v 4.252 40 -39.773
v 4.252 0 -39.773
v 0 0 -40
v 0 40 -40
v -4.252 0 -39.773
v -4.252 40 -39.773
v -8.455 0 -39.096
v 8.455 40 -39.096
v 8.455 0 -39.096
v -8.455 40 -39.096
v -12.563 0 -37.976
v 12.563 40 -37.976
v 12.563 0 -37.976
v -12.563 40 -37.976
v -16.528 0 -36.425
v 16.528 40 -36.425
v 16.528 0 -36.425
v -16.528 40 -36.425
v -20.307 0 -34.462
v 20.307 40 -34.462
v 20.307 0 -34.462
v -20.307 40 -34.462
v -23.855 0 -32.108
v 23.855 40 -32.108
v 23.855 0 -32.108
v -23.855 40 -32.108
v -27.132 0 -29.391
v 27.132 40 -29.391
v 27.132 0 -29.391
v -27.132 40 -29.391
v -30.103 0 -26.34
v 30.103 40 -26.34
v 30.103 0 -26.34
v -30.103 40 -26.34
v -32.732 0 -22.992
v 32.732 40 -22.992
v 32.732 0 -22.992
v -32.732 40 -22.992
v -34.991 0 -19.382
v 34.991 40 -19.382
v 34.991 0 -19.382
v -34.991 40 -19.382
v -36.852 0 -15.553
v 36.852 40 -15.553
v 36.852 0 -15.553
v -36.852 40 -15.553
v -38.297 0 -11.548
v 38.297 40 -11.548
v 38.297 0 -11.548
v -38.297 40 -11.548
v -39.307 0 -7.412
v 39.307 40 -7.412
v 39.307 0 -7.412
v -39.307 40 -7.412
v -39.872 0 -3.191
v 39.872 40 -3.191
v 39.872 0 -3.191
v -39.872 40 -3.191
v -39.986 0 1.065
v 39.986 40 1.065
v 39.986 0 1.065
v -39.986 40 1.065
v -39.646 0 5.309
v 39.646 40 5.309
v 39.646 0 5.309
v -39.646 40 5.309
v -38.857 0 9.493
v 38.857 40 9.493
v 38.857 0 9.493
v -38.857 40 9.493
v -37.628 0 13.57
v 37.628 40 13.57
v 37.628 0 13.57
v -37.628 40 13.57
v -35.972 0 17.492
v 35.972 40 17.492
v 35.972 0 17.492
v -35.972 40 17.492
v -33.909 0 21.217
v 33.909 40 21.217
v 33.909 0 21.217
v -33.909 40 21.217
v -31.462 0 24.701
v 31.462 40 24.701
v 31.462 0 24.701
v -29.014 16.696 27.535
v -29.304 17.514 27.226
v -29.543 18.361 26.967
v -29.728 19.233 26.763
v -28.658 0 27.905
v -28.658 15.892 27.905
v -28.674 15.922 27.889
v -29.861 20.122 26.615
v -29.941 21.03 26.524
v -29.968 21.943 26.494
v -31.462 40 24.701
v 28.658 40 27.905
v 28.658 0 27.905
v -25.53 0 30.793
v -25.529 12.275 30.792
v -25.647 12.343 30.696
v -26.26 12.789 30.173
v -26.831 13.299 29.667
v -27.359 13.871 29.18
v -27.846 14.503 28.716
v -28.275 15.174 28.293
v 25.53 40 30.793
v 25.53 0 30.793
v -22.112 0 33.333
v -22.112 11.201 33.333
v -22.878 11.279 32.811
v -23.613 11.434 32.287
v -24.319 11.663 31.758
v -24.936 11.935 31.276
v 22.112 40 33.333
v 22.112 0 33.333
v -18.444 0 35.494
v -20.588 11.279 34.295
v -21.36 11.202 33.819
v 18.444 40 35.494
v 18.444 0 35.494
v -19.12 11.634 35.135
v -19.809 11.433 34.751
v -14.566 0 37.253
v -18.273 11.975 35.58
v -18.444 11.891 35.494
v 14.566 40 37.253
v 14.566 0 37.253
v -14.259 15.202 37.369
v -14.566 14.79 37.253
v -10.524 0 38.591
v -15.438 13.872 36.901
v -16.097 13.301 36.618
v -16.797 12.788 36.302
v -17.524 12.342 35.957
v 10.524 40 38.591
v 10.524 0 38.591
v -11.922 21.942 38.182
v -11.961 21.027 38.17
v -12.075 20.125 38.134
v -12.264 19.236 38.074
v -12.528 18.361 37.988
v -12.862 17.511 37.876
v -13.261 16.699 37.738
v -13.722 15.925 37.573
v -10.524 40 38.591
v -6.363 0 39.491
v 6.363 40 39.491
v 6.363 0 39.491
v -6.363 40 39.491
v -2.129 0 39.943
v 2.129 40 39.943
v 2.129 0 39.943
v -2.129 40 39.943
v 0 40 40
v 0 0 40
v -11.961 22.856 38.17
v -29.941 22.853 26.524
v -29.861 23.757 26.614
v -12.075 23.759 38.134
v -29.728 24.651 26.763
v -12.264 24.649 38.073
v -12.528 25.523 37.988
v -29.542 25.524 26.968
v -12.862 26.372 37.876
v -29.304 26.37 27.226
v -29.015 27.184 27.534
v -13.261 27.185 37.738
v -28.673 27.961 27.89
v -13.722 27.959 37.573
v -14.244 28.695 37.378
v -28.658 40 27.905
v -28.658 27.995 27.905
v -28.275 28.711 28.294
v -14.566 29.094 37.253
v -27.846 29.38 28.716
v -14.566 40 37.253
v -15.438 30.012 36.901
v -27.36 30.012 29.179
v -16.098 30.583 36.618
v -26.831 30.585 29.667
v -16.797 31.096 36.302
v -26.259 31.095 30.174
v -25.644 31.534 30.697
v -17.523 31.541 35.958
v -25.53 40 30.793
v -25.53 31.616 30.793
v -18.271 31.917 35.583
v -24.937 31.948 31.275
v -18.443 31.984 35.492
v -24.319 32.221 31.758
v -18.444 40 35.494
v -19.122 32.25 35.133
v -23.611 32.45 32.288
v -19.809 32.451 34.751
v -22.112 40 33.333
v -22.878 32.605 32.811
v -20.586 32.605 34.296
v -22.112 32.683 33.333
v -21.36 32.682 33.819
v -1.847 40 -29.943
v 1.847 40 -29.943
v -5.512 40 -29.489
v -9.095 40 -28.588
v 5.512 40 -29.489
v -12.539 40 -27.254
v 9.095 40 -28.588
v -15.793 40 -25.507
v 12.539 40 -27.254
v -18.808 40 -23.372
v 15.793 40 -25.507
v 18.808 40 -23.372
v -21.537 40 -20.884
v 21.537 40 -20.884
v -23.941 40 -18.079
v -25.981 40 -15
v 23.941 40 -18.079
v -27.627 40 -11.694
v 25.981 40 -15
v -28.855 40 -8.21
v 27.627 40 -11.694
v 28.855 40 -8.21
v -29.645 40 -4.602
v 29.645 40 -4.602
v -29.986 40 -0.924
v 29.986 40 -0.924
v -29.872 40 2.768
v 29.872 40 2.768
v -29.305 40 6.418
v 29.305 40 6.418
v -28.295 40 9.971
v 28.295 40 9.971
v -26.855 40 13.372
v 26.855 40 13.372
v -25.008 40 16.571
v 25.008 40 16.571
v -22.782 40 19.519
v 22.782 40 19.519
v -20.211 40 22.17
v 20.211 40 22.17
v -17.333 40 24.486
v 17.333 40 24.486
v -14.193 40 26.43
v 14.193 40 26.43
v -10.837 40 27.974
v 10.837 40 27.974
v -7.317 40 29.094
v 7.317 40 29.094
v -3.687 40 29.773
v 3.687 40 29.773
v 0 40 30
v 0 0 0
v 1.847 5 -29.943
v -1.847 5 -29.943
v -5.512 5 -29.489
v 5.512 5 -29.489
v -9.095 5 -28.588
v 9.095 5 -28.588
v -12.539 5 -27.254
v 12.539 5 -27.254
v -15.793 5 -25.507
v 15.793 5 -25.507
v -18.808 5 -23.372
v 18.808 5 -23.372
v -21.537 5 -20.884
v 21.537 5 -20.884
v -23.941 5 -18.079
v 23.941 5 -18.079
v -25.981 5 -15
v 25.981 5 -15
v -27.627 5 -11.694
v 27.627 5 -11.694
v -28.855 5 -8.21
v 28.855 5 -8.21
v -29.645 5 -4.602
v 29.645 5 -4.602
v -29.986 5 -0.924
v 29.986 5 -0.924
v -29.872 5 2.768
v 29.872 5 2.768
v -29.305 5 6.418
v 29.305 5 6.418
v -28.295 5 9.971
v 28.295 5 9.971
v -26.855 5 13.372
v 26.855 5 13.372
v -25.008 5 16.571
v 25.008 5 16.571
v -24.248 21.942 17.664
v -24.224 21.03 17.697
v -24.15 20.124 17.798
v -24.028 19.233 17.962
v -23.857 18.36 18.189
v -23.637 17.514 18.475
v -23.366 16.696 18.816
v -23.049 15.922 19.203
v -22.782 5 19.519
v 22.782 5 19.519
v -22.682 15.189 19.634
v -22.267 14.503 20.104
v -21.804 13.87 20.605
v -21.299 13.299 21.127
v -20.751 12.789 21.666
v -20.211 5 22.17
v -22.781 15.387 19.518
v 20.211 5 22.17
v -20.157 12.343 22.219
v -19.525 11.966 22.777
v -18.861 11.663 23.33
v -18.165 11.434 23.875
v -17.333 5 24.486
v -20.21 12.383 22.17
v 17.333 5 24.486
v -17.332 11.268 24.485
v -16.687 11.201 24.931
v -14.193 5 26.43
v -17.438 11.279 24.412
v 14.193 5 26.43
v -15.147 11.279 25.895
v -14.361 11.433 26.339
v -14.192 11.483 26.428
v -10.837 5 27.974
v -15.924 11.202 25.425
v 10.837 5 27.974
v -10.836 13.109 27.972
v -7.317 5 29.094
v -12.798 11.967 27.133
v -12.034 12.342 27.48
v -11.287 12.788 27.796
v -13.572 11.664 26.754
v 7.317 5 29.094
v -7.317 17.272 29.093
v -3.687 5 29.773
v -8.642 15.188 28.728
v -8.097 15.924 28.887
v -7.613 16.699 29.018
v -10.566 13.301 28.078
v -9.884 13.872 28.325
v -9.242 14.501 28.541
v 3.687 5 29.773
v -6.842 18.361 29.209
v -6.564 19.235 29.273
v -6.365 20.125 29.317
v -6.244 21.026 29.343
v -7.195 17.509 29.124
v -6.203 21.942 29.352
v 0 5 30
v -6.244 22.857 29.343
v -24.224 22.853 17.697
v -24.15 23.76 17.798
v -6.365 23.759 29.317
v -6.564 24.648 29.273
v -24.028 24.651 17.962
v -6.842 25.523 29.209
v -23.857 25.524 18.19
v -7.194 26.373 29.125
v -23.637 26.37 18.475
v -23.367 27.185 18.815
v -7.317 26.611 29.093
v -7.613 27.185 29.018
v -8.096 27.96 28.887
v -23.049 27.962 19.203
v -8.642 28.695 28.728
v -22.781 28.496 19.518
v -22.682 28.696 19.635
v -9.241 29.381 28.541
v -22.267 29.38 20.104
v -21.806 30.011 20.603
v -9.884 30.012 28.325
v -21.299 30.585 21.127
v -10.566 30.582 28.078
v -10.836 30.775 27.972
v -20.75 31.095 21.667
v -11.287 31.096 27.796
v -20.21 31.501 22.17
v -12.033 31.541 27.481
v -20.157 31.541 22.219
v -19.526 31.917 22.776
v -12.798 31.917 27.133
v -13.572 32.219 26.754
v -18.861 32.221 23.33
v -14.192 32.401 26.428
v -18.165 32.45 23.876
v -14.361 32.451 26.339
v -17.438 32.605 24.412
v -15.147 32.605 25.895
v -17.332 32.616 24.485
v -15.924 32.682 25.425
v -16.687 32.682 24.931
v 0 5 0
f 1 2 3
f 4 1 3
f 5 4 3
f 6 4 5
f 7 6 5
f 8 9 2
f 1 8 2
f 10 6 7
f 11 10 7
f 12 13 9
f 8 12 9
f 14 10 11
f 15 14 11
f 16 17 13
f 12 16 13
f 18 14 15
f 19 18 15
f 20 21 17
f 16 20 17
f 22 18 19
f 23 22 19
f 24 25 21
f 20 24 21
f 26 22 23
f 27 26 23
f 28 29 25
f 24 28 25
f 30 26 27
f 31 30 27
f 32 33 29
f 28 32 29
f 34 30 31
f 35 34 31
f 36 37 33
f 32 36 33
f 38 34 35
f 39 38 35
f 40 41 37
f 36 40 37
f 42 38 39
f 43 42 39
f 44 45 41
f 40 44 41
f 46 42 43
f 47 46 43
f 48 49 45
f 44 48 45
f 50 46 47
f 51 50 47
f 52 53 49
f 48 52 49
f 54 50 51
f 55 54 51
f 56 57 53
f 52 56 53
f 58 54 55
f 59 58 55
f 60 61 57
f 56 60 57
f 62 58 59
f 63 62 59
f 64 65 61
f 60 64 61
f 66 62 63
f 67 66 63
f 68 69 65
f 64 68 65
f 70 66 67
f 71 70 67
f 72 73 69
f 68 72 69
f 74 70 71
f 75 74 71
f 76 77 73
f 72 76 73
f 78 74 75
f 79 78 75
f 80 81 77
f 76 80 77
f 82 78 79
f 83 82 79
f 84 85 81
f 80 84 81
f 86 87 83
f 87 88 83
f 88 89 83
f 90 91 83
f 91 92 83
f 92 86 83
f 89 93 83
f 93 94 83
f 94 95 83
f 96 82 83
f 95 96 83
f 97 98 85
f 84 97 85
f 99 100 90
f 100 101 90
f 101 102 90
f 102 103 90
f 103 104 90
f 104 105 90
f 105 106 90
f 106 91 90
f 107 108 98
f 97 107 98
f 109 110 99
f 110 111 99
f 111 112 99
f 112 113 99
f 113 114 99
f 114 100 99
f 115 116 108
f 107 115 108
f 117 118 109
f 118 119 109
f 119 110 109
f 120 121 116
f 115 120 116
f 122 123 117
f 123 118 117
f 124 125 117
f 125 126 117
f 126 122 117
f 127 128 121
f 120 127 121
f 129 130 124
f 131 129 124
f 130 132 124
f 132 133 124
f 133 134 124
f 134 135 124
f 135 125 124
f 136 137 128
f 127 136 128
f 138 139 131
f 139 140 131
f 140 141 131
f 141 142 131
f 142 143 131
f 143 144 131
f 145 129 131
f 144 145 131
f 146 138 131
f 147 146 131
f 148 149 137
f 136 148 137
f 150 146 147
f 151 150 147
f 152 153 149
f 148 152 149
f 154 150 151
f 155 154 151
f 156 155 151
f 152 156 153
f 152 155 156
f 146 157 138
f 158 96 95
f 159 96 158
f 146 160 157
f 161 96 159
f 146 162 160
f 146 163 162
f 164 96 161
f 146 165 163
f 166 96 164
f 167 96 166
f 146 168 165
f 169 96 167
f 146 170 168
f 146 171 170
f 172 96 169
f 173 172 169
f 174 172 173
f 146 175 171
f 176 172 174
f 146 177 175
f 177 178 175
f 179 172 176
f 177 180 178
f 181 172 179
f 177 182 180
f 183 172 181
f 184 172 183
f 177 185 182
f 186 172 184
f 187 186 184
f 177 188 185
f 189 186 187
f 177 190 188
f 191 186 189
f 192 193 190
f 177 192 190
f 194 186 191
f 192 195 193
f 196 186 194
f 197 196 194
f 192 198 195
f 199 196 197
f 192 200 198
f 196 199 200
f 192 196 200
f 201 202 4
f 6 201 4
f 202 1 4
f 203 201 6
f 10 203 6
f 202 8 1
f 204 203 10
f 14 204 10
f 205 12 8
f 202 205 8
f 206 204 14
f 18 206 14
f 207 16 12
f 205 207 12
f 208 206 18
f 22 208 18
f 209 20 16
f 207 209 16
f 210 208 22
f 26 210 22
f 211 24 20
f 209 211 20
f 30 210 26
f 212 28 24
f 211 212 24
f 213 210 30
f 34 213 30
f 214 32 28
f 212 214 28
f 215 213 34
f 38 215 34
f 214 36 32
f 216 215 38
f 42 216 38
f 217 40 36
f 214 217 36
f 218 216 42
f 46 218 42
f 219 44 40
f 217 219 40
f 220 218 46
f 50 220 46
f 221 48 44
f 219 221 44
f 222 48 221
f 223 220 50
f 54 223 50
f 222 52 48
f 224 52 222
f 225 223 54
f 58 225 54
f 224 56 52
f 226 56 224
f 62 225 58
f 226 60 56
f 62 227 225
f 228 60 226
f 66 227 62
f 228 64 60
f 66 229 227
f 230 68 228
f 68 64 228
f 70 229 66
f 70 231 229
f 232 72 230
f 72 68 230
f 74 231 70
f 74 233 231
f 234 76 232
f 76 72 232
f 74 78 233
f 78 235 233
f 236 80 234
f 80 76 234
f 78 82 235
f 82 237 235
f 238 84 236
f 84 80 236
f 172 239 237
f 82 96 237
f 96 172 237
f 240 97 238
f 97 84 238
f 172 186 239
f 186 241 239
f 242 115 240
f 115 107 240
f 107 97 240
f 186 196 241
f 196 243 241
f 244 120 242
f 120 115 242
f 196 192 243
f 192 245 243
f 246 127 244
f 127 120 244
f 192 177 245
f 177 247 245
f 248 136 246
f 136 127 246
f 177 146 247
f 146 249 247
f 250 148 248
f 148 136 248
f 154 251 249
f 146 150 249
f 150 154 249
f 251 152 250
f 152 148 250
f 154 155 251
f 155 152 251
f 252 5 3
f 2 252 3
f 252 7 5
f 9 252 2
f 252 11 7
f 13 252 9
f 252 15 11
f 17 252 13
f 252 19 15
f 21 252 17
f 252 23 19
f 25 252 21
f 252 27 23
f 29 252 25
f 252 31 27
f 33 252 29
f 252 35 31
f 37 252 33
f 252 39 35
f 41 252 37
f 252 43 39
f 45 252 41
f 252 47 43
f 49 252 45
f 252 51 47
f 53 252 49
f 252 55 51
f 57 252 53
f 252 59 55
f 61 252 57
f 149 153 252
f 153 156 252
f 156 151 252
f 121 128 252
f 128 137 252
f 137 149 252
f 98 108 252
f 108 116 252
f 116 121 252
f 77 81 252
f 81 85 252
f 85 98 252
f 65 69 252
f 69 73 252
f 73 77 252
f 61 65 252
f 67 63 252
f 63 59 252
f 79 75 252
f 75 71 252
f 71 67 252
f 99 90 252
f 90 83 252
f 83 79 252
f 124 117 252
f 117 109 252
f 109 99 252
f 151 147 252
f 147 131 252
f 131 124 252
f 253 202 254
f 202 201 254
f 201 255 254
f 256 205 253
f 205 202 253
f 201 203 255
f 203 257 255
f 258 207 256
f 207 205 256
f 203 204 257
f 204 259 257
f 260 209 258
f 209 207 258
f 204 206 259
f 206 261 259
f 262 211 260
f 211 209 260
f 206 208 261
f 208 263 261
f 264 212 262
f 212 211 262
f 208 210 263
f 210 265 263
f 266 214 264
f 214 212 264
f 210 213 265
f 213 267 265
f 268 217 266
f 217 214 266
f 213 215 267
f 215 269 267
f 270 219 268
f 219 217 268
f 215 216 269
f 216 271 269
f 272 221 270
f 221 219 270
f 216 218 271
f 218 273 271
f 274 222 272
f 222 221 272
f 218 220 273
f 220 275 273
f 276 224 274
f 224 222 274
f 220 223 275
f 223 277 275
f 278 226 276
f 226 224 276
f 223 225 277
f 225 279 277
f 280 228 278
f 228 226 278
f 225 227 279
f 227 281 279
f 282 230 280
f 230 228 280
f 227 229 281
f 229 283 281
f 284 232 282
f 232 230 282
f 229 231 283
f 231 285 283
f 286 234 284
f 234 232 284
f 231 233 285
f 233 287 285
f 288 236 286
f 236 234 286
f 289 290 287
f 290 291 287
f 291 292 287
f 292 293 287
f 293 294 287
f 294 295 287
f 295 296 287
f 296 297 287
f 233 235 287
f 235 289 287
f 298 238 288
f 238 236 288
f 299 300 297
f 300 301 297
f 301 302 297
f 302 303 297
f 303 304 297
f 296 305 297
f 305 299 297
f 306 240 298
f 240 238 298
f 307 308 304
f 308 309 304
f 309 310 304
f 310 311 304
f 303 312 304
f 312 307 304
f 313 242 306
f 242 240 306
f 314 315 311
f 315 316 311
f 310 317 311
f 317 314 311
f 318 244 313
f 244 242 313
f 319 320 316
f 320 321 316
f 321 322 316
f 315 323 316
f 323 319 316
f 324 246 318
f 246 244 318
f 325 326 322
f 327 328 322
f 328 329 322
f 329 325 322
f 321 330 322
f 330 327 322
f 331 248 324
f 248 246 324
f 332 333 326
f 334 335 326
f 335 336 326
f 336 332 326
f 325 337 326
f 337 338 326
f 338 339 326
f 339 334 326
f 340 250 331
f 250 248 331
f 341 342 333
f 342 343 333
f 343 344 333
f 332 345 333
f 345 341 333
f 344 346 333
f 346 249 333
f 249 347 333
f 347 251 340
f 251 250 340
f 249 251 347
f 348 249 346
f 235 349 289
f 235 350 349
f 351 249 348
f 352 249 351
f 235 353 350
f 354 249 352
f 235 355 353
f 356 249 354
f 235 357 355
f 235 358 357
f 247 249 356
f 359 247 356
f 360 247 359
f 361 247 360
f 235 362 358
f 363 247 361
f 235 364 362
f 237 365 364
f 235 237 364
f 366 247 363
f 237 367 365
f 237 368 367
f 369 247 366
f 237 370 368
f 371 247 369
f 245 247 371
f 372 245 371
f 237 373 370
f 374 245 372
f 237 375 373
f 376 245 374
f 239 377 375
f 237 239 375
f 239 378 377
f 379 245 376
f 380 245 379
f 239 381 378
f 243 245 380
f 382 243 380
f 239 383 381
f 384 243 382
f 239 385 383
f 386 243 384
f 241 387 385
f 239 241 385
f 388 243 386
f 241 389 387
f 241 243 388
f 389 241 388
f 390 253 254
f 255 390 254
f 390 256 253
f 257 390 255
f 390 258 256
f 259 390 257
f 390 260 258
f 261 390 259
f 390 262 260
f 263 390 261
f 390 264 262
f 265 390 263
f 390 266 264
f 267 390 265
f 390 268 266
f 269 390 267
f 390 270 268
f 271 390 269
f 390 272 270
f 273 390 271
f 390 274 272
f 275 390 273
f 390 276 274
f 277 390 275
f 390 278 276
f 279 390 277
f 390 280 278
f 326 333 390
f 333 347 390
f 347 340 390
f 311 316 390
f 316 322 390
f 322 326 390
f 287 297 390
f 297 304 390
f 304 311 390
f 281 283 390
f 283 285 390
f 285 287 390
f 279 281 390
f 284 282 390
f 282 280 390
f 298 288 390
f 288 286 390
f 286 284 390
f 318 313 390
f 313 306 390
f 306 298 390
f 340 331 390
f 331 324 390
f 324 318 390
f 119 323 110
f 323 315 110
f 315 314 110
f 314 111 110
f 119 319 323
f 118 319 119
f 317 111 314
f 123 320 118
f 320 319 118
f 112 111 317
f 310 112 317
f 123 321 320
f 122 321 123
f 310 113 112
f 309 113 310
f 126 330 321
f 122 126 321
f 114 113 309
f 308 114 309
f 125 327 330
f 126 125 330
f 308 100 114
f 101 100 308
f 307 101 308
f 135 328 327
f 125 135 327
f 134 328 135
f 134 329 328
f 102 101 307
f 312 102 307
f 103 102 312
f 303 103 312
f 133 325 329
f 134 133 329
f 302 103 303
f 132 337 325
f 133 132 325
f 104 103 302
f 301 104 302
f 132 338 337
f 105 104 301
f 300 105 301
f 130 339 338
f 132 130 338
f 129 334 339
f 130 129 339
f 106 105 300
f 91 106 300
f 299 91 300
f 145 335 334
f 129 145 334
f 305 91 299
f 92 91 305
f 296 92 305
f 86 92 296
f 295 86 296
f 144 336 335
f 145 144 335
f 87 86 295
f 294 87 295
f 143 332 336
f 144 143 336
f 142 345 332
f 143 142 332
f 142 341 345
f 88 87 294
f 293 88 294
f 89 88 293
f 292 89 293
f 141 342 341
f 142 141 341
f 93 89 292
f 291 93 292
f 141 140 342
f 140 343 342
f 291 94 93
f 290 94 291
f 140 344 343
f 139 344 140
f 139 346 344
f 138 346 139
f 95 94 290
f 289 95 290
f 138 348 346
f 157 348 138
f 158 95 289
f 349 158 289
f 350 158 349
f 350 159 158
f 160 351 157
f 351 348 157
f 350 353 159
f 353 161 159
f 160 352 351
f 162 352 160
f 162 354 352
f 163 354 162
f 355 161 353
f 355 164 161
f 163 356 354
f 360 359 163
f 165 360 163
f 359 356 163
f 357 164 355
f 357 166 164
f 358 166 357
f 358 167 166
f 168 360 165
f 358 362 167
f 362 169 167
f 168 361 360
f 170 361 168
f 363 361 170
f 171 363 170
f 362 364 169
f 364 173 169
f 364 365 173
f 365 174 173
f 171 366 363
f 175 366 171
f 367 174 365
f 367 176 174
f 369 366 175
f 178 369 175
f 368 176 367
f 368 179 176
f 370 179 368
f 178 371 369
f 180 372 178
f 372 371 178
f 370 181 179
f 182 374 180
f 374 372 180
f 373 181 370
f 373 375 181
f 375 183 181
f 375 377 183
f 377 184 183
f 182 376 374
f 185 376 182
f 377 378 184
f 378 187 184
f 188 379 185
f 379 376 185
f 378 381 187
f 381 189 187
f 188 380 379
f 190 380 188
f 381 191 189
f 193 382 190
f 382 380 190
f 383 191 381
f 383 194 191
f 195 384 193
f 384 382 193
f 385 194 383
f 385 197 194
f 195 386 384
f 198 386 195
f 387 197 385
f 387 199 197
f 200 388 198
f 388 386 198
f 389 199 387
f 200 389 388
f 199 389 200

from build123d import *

# Parameters (mm, degrees)
SKETCH_1_R                     = 40
EXTRUDE_1_DEPTH                = 40
SKETCH_3_R                     = 30
CUT_EXTRUDE_2_DEPTH            = 35
HOLE_WIZARD_21_5_21_5_1_REACH  = 100.524
HOLE_WIZARD_21_5_21_5_1_BORE_R = 10.75


with BuildPart() as part:
    # 草圖1 → 填料-伸長1 (new body)
    with BuildSketch(Plane(origin=(0, 0, 0), x_dir=(1, 0, 0), z_dir=(0, 1, 0))):
        with Locations(Location((0, 0, 0), (0, 0, 270))):
            Circle(SKETCH_1_R)
    extrude(amount=EXTRUDE_1_DEPTH)

    # 草圖3 → 除料-伸長2 (cut)
    with BuildSketch(Plane(origin=(0, 40, 0), x_dir=(1, 0, 0), z_dir=(0, 1, 0))):
        with Locations(Location((0, 0, 0), (0, 0, 270))):
            Circle(SKETCH_3_R)
    extrude(amount=-CUT_EXTRUDE_2_DEPTH, mode=Mode.SUBTRACT)

    # Ø21.5 (21.5) 直徑孔1 bore (on position points) → Ø21.5 (21.5) 直徑孔1 (cut, up to next)
    with BuildSketch(Plane(origin=(-21.744758151, 21.94181737, 33.573285406), x_dir=(0.839332135156, 0, 0.543618953768), z_dir=(-0.543618953768, 0, 0.839332135156)), mode=Mode.PRIVATE) as hole_wizard_21_5_21_5_1_sk1:
        Circle(HOLE_WIZARD_21_5_21_5_1_BORE_R)
    hole_wizard_21_5_21_5_1_tool1 = extrude(hole_wizard_21_5_21_5_1_sk1.sketch, amount=-HOLE_WIZARD_21_5_21_5_1_REACH, mode=Mode.PRIVATE) & part.part
    add(hole_wizard_21_5_21_5_1_tool1.solids().sort_by_distance((-21.744758, 21.941817, 33.573285))[0], mode=Mode.SUBTRACT)


solid = part.part
